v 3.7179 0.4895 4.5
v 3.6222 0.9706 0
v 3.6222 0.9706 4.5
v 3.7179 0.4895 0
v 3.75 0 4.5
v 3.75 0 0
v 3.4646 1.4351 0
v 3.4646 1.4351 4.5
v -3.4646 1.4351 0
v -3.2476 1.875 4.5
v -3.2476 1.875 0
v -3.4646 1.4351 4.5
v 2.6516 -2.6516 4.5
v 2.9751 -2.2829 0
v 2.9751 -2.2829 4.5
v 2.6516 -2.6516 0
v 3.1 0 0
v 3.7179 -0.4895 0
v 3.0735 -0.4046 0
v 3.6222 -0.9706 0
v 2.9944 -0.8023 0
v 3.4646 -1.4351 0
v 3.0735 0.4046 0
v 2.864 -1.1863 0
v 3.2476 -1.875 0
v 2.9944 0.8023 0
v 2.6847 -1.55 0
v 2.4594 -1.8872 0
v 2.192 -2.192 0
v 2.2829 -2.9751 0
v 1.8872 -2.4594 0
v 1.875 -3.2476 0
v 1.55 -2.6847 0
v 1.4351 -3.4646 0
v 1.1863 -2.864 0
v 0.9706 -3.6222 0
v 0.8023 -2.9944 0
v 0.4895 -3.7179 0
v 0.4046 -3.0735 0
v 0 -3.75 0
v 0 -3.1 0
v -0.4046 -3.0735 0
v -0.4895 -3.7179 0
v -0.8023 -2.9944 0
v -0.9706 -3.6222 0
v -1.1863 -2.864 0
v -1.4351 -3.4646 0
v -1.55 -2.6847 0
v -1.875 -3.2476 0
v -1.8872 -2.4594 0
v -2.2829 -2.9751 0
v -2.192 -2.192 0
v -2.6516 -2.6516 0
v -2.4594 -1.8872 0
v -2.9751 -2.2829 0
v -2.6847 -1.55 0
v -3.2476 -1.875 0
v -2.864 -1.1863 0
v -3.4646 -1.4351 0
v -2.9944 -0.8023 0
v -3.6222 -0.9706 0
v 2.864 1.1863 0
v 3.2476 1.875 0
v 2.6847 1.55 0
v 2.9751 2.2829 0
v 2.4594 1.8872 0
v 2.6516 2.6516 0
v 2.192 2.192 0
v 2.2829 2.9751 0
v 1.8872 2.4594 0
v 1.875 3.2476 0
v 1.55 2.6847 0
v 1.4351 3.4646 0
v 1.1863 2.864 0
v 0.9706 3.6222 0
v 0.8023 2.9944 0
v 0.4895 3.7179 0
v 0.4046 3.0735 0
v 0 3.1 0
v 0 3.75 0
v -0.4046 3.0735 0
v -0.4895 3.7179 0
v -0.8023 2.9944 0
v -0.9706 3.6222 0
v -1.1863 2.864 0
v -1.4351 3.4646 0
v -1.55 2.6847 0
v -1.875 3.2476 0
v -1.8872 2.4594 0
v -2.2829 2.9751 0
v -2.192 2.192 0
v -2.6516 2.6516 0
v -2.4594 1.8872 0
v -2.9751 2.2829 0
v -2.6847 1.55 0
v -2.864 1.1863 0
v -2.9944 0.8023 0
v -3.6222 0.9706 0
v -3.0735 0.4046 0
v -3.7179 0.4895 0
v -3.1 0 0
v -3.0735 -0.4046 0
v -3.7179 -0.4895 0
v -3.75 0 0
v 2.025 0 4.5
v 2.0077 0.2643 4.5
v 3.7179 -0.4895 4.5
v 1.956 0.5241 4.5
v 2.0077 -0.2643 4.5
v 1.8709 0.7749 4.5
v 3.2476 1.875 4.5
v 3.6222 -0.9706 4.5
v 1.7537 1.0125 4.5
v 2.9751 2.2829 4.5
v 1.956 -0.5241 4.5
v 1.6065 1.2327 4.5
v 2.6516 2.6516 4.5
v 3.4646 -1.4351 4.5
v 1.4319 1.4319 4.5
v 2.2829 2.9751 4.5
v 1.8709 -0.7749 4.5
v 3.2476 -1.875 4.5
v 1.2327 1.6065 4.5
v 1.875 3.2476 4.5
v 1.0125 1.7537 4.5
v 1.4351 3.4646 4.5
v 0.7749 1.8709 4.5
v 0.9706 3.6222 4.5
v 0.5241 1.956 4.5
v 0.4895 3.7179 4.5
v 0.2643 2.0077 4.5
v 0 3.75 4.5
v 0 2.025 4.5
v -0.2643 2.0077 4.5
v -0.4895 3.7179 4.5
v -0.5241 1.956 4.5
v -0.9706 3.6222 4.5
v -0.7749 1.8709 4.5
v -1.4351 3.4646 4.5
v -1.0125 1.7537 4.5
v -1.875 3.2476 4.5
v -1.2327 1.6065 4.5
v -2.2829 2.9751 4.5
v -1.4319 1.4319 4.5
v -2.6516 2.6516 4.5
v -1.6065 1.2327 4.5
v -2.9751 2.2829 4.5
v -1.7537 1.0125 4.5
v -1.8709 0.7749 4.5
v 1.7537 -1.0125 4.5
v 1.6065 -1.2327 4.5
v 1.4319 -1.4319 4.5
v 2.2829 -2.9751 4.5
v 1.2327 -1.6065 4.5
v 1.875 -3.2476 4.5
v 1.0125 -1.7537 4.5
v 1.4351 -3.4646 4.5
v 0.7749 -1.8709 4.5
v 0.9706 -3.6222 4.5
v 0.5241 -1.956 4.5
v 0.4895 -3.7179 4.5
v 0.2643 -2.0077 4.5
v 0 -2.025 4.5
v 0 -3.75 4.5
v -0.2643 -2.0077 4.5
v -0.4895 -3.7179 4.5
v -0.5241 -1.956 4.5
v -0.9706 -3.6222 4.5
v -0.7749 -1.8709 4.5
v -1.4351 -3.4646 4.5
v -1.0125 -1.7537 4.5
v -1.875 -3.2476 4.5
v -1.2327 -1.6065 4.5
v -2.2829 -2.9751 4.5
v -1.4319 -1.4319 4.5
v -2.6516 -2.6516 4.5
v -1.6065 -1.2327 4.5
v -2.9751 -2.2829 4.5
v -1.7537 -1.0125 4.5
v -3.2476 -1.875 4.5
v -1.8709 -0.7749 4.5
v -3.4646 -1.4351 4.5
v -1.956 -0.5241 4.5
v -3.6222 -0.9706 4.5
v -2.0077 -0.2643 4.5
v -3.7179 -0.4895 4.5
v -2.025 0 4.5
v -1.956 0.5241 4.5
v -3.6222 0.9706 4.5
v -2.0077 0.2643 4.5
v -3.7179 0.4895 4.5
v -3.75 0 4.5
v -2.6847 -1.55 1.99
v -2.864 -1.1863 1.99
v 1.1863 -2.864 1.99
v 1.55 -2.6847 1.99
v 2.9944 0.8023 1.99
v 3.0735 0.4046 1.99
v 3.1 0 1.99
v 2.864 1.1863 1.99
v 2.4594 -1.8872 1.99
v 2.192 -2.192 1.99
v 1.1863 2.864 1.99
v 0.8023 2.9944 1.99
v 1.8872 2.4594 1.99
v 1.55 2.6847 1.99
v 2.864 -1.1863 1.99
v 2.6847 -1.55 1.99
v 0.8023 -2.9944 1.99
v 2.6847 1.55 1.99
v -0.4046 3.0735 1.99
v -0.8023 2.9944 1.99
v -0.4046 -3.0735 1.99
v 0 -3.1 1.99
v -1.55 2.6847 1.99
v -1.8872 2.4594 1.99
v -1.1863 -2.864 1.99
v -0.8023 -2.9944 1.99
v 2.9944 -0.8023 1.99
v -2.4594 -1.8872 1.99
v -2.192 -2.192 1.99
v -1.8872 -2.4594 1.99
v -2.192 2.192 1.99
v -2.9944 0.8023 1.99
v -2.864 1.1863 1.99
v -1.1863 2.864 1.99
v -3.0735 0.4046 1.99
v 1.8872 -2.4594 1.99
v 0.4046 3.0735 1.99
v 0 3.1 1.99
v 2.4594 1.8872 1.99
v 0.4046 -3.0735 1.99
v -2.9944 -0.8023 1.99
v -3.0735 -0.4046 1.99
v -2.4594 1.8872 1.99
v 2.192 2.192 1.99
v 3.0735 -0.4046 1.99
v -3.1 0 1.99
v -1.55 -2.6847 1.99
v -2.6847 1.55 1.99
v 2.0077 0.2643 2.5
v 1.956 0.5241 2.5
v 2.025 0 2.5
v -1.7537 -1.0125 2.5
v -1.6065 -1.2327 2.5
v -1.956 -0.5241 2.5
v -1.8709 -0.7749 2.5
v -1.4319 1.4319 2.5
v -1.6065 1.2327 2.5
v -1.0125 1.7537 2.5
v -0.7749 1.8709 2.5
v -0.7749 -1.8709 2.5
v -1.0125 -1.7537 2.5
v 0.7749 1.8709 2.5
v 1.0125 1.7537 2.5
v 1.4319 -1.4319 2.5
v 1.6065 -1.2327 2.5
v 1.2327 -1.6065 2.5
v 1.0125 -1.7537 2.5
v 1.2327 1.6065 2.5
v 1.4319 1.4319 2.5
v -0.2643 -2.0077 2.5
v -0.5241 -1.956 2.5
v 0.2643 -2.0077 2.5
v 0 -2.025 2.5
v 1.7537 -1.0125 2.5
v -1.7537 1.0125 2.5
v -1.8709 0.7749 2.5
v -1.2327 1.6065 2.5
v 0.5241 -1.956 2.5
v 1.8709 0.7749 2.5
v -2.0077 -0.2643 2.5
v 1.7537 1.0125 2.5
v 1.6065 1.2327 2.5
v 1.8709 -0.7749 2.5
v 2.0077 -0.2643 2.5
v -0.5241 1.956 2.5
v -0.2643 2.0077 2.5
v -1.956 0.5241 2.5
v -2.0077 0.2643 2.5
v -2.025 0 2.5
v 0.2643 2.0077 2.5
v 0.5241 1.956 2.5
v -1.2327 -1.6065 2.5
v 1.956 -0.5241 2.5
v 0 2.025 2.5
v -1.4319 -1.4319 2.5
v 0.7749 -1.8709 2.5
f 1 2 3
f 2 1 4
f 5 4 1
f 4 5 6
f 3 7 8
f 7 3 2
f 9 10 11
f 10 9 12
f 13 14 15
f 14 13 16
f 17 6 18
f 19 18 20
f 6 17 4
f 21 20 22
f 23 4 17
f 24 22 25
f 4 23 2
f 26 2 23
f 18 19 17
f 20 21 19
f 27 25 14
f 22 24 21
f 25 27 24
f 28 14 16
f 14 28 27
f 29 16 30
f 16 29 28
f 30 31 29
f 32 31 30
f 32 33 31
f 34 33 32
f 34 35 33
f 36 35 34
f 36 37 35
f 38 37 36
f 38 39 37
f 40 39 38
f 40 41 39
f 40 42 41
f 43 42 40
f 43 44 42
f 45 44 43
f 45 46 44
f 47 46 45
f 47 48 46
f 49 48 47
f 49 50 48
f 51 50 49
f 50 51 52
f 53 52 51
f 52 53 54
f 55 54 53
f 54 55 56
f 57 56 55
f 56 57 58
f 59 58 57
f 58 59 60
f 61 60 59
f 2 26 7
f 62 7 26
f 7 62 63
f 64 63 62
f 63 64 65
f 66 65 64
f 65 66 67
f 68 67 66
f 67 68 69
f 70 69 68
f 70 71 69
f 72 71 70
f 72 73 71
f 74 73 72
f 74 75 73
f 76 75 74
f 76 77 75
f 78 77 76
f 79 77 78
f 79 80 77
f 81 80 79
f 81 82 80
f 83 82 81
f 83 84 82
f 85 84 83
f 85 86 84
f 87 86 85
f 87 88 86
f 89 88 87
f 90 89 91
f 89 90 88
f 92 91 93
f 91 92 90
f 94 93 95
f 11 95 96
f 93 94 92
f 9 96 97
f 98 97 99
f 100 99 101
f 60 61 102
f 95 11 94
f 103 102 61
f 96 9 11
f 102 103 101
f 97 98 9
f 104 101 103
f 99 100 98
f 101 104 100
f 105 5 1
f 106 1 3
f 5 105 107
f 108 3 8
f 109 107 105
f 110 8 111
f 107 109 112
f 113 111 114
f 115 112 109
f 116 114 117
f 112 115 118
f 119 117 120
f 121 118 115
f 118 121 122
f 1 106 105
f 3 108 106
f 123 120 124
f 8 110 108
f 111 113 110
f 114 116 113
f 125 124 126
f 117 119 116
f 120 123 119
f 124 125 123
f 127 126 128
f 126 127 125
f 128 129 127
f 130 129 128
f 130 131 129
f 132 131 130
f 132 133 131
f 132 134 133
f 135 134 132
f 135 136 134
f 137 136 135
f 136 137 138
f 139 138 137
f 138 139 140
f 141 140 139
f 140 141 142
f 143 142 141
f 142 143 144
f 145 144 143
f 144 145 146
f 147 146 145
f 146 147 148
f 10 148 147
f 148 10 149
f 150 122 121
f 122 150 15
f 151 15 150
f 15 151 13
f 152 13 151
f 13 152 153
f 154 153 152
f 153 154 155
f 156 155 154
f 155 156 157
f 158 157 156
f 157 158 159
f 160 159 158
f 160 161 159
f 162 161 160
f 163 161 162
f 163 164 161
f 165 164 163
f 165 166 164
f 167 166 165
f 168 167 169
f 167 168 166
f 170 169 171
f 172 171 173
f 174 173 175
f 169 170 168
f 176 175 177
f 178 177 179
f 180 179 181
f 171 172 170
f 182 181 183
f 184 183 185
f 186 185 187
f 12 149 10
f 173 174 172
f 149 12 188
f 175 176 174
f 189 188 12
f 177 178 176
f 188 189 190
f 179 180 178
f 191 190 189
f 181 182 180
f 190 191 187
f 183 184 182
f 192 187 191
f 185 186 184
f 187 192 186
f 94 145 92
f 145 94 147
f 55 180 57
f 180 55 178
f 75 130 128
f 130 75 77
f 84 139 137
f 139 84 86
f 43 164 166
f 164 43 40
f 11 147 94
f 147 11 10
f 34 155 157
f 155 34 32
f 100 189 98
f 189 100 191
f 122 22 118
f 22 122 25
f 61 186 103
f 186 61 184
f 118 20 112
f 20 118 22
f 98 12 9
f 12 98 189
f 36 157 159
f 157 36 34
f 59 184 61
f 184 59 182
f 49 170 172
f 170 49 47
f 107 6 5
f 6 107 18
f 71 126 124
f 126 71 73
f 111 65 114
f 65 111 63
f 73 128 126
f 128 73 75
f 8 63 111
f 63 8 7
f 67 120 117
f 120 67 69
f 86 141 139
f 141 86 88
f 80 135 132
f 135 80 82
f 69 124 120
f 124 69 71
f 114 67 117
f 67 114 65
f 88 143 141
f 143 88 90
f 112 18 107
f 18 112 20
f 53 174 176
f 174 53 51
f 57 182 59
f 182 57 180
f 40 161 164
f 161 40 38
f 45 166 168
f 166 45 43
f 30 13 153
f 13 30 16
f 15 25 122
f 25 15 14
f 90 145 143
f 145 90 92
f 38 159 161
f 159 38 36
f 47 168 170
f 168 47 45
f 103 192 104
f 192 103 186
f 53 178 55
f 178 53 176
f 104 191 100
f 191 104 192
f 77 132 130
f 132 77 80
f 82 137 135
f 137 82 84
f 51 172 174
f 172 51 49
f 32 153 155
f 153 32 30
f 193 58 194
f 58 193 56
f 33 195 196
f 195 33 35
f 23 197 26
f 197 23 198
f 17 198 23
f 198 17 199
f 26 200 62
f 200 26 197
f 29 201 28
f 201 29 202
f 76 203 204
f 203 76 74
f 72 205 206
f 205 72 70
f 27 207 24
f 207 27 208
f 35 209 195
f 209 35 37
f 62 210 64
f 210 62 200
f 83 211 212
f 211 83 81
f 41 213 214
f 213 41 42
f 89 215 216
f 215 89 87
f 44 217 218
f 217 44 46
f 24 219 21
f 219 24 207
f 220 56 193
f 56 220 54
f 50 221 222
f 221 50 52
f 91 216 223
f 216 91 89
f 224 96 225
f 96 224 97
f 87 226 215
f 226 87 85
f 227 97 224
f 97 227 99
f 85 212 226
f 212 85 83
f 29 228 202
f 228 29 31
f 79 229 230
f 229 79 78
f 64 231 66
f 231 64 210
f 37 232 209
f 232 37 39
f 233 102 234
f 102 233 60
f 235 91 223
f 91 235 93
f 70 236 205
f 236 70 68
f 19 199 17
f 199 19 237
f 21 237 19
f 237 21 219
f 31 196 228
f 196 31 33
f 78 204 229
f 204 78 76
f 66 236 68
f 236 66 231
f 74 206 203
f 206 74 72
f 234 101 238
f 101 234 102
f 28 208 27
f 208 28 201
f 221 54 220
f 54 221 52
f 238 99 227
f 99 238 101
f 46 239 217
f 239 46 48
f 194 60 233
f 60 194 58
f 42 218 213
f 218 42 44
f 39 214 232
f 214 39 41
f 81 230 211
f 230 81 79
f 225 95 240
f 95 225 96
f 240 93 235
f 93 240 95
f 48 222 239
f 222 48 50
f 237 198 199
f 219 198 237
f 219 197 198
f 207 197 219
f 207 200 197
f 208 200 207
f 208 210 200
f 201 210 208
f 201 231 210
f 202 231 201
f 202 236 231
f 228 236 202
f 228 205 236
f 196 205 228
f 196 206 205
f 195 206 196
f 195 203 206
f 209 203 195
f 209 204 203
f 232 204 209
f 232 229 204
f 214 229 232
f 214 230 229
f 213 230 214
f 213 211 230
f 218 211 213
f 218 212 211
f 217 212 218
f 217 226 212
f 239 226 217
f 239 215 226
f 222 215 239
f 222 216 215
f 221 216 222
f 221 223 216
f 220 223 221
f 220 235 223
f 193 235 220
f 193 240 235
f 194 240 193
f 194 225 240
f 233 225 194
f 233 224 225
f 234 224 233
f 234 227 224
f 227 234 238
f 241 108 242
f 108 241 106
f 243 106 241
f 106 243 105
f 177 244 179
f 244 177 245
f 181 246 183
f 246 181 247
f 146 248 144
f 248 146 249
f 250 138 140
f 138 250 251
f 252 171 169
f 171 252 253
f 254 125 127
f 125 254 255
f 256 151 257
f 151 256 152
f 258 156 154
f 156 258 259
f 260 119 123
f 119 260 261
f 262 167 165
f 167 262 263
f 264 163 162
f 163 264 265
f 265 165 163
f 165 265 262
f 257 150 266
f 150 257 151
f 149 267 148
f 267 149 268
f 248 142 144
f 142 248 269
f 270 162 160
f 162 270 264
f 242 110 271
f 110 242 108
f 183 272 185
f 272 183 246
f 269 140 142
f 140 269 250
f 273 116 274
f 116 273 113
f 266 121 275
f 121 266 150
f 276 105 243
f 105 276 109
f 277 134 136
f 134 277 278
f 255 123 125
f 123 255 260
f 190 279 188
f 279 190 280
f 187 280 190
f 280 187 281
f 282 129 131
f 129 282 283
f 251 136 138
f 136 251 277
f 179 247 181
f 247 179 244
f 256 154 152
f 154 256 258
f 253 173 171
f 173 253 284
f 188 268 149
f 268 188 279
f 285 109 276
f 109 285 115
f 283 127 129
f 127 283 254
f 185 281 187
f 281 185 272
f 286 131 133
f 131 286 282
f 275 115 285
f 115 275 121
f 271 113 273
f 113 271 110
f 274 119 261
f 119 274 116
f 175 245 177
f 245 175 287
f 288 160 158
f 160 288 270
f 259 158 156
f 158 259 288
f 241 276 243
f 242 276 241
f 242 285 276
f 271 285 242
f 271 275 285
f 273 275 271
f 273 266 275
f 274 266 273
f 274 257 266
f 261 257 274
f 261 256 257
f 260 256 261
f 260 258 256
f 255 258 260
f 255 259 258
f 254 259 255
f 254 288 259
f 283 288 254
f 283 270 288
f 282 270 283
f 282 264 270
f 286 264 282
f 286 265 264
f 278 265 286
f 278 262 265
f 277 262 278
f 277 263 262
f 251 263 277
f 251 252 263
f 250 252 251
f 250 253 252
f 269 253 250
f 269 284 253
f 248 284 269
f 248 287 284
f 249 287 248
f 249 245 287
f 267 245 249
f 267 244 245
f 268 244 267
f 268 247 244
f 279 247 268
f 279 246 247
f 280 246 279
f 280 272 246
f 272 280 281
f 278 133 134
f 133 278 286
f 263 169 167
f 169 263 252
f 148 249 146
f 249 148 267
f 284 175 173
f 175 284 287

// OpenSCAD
// file: common.scad
// Hexboard overlay — shared dimensions and part modules.
// All values hardcoded in mm. z = 0 is the iPad glass. Hexes are pointy-top (a vertex points along +Y),
// matching the app's key grid (app/js/geometry.js).

$fn = 48;

// ---------- grid ----------
PITCH   = 24.15;                 // key centre-to-centre
ROW     = PITCH * sqrt(3) / 2;   // 20.914 between rows

// ---------- cap (translucent PETG) ----------
CAP_FLAT   = 21.0;   // outer flat-to-flat
CAP_H      = 9.0;
CAP_WALL   = 1.2;
CAP_TOP    = 1.6;    // top thickness
CAP_HOLE   = 4.3;    // stem through-hole
CB_D       = 8.4;    // counterbore for plunger head
CB_DEPTH   = 1.2;

// ---------- plunger (conductive PLA) ----------
HEAD_D     = 8.0;
HEAD_H     = 1.2;
STEM_D     = 4.0;
STEM_L     = 14.3;   // below the head

// ---------- tip cup (conductive PLA) + conductive foam ----------
CUP_D      = 7.5;
CUP_H      = 4.5;
SOCKET_D   = 4.05;   // press fit on the stem
SOCKET_DEPTH = 2.0;
POCKET_D   = 6.2;    // holds a 6 mm conductive foam disc
POCKET_DEPTH = 2.0;
FOAM_PROTRUDE = 1.5; // foam below the cup (foam disc 6 x 3.5 mm)

// ---------- vertical stack (rest position) ----------
REST_GAP     = 2.0;                                  // foam to glass at rest
CUP_TOP_Z    = REST_GAP + FOAM_PROTRUDE + CUP_H;     // 8.0: cup stops under the spider
SPIDER_Z     = CUP_TOP_Z;                            // spider bottom = plate bottom
SPIDER_T     = 1.5;
TRAVEL_STOP  = 3.0;                                  // cap bottom to spider at rest
CAP_BOTTOM_Z = SPIDER_Z + SPIDER_T + TRAVEL_STOP;    // 12.5
CAP_TOP_Z    = CAP_BOTTOM_Z + CAP_H;                 // 21.5
PLATE_TOP_Z  = CAP_TOP_Z - 2.0;                      // 19.5: caps stand 2 mm proud
// Pressed to the stop: foam is 1 mm into the glass (compressed), which is the pressure range.

// ---------- bore + spider (part of each housing) ----------
BORE_FLAT    = 21.4;  // 0.2 mm clearance per side
SPIDER_RING_ID = 4.6; // stem slides through
SPIDER_RING_OD = 9.0; // spring seat (spring: 0.5 mm wire, 7 mm OD, ~15 mm free length)
SPOKE_W      = 1.2;

// ---------- iPad Air 4 (A2316) ----------
IPAD_W   = 247.6;
IPAD_H   = 178.5;
IPAD_T   = 6.1;
IPAD_R   = 18.0;     // corner radius (approximate: measure yours)
SCREEN_W = 227.06;   // 2360 px / 264 ppi
SCREEN_H = 157.79;   // 1640 px / 264 ppi
STRIP    = 18.0;     // uncovered control strip along the top edge of the screen
// Key grid centre relative to screen centre (y up): matches app geometry.
GRID_Y   = -(SCREEN_H + STRIP) / 2 + SCREEN_H / 2;   // -9.0

// ---------- helpers ----------
module hex(flat, h) { rotate([0, 0, 30]) cylinder(r = flat / sqrt(3), h = h, $fn = 6); }

// Key centres for the 51-key grid: 6 rows of 9 / 8 keys, row 0 nearest the player.
function key_q(r, j) = (r % 2 == 1) ? j - 3.5 : j - 4;
function key_pos(r, j) = [key_q(r, j) * PITCH, GRID_Y + (r - 2.5) * ROW];

// ---------- parts ----------
// Cap: hollow hex, open at the bottom. Print top-down (top face on the bed).
module cap() {
  difference() {
    hex(CAP_FLAT, CAP_H);
    translate([0, 0, -0.01]) hex(CAP_FLAT - 2 * CAP_WALL, CAP_H - CAP_TOP);
    translate([0, 0, -1]) cylinder(d = CAP_HOLE, h = CAP_H + 2);
    translate([0, 0, CAP_H - CB_DEPTH]) cylinder(d = CB_D, h = CB_DEPTH + 1);
    // soft top edge
    translate([0, 0, CAP_H - 0.8])
      difference() { hex(CAP_FLAT + 2, 2); hex_chamfer(); }
  }
}
module hex_chamfer() {
  rotate([0, 0, 30]) cylinder(r1 = CAP_FLAT / sqrt(3), r2 = (CAP_FLAT - 1.6) / sqrt(3), h = 0.8, $fn = 6);
}

// Plunger: head sits flush in the cap's counterbore; stem runs down through the spider.
// Print head-down.
module plunger() {
  cylinder(d = HEAD_D, h = HEAD_H);
  cylinder(d = STEM_D, h = HEAD_H + STEM_L);
}

// Tip cup: socket on top (stem), pocket underneath (foam). Print socket-up.
module tip_cup() {
  difference() {
    cylinder(d = CUP_D, h = CUP_H);
    translate([0, 0, -0.01]) cylinder(d = POCKET_D, h = POCKET_DEPTH);
    translate([0, 0, CUP_H - SOCKET_DEPTH]) cylinder(d = SOCKET_D, h = SOCKET_DEPTH + 1);
  }
}

// Spider: three spokes from the bore wall to the spring-seat ring. Positioned at z = SPIDER_Z.
module spider() {
  translate([0, 0, SPIDER_Z]) {
    difference() {
      cylinder(d = SPIDER_RING_OD, h = SPIDER_T);
      translate([0, 0, -1]) cylinder(d = SPIDER_RING_ID, h = SPIDER_T + 2);
    }
    for (a = [0, 120, 240]) rotate([0, 0, a])   // toward the bore's flat sides
      translate([SPIDER_RING_OD / 2 - 0.5, -SPOKE_W / 2, 0])
        cube([BORE_FLAT / 2 - SPIDER_RING_OD / 2 + 1.5, SPOKE_W, SPIDER_T]);
  }
}

// Bore cut-out (through the plate), used with difference().
module bore() { translate([0, 0, SPIDER_Z - 1]) hex(BORE_FLAT, PLATE_TOP_Z - SPIDER_Z + 2); }

// Whole key assembly at rest, for previews.
module key_assembly() {
  color([0.6, 0.9, 0.8, 0.6]) translate([0, 0, CAP_BOTTOM_Z]) cap();
  color("dimgray") translate([0, 0, CAP_TOP_Z]) mirror([0, 0, 1]) plunger();
  color("dimgray") translate([0, 0, CUP_TOP_Z - CUP_H]) tip_cup();
  color("black") translate([0, 0, REST_GAP]) cylinder(d = 6, h = FOAM_PROTRUDE + POCKET_DEPTH);
}
// main file
// Tip cup — conductive PLA. Print pocket-down as modelled, no supports.
// Press onto the stem from below the frame; glue a 6 x 3.5 mm conductive foam disc into the pocket.
include <common.scad>
tip_cup();
